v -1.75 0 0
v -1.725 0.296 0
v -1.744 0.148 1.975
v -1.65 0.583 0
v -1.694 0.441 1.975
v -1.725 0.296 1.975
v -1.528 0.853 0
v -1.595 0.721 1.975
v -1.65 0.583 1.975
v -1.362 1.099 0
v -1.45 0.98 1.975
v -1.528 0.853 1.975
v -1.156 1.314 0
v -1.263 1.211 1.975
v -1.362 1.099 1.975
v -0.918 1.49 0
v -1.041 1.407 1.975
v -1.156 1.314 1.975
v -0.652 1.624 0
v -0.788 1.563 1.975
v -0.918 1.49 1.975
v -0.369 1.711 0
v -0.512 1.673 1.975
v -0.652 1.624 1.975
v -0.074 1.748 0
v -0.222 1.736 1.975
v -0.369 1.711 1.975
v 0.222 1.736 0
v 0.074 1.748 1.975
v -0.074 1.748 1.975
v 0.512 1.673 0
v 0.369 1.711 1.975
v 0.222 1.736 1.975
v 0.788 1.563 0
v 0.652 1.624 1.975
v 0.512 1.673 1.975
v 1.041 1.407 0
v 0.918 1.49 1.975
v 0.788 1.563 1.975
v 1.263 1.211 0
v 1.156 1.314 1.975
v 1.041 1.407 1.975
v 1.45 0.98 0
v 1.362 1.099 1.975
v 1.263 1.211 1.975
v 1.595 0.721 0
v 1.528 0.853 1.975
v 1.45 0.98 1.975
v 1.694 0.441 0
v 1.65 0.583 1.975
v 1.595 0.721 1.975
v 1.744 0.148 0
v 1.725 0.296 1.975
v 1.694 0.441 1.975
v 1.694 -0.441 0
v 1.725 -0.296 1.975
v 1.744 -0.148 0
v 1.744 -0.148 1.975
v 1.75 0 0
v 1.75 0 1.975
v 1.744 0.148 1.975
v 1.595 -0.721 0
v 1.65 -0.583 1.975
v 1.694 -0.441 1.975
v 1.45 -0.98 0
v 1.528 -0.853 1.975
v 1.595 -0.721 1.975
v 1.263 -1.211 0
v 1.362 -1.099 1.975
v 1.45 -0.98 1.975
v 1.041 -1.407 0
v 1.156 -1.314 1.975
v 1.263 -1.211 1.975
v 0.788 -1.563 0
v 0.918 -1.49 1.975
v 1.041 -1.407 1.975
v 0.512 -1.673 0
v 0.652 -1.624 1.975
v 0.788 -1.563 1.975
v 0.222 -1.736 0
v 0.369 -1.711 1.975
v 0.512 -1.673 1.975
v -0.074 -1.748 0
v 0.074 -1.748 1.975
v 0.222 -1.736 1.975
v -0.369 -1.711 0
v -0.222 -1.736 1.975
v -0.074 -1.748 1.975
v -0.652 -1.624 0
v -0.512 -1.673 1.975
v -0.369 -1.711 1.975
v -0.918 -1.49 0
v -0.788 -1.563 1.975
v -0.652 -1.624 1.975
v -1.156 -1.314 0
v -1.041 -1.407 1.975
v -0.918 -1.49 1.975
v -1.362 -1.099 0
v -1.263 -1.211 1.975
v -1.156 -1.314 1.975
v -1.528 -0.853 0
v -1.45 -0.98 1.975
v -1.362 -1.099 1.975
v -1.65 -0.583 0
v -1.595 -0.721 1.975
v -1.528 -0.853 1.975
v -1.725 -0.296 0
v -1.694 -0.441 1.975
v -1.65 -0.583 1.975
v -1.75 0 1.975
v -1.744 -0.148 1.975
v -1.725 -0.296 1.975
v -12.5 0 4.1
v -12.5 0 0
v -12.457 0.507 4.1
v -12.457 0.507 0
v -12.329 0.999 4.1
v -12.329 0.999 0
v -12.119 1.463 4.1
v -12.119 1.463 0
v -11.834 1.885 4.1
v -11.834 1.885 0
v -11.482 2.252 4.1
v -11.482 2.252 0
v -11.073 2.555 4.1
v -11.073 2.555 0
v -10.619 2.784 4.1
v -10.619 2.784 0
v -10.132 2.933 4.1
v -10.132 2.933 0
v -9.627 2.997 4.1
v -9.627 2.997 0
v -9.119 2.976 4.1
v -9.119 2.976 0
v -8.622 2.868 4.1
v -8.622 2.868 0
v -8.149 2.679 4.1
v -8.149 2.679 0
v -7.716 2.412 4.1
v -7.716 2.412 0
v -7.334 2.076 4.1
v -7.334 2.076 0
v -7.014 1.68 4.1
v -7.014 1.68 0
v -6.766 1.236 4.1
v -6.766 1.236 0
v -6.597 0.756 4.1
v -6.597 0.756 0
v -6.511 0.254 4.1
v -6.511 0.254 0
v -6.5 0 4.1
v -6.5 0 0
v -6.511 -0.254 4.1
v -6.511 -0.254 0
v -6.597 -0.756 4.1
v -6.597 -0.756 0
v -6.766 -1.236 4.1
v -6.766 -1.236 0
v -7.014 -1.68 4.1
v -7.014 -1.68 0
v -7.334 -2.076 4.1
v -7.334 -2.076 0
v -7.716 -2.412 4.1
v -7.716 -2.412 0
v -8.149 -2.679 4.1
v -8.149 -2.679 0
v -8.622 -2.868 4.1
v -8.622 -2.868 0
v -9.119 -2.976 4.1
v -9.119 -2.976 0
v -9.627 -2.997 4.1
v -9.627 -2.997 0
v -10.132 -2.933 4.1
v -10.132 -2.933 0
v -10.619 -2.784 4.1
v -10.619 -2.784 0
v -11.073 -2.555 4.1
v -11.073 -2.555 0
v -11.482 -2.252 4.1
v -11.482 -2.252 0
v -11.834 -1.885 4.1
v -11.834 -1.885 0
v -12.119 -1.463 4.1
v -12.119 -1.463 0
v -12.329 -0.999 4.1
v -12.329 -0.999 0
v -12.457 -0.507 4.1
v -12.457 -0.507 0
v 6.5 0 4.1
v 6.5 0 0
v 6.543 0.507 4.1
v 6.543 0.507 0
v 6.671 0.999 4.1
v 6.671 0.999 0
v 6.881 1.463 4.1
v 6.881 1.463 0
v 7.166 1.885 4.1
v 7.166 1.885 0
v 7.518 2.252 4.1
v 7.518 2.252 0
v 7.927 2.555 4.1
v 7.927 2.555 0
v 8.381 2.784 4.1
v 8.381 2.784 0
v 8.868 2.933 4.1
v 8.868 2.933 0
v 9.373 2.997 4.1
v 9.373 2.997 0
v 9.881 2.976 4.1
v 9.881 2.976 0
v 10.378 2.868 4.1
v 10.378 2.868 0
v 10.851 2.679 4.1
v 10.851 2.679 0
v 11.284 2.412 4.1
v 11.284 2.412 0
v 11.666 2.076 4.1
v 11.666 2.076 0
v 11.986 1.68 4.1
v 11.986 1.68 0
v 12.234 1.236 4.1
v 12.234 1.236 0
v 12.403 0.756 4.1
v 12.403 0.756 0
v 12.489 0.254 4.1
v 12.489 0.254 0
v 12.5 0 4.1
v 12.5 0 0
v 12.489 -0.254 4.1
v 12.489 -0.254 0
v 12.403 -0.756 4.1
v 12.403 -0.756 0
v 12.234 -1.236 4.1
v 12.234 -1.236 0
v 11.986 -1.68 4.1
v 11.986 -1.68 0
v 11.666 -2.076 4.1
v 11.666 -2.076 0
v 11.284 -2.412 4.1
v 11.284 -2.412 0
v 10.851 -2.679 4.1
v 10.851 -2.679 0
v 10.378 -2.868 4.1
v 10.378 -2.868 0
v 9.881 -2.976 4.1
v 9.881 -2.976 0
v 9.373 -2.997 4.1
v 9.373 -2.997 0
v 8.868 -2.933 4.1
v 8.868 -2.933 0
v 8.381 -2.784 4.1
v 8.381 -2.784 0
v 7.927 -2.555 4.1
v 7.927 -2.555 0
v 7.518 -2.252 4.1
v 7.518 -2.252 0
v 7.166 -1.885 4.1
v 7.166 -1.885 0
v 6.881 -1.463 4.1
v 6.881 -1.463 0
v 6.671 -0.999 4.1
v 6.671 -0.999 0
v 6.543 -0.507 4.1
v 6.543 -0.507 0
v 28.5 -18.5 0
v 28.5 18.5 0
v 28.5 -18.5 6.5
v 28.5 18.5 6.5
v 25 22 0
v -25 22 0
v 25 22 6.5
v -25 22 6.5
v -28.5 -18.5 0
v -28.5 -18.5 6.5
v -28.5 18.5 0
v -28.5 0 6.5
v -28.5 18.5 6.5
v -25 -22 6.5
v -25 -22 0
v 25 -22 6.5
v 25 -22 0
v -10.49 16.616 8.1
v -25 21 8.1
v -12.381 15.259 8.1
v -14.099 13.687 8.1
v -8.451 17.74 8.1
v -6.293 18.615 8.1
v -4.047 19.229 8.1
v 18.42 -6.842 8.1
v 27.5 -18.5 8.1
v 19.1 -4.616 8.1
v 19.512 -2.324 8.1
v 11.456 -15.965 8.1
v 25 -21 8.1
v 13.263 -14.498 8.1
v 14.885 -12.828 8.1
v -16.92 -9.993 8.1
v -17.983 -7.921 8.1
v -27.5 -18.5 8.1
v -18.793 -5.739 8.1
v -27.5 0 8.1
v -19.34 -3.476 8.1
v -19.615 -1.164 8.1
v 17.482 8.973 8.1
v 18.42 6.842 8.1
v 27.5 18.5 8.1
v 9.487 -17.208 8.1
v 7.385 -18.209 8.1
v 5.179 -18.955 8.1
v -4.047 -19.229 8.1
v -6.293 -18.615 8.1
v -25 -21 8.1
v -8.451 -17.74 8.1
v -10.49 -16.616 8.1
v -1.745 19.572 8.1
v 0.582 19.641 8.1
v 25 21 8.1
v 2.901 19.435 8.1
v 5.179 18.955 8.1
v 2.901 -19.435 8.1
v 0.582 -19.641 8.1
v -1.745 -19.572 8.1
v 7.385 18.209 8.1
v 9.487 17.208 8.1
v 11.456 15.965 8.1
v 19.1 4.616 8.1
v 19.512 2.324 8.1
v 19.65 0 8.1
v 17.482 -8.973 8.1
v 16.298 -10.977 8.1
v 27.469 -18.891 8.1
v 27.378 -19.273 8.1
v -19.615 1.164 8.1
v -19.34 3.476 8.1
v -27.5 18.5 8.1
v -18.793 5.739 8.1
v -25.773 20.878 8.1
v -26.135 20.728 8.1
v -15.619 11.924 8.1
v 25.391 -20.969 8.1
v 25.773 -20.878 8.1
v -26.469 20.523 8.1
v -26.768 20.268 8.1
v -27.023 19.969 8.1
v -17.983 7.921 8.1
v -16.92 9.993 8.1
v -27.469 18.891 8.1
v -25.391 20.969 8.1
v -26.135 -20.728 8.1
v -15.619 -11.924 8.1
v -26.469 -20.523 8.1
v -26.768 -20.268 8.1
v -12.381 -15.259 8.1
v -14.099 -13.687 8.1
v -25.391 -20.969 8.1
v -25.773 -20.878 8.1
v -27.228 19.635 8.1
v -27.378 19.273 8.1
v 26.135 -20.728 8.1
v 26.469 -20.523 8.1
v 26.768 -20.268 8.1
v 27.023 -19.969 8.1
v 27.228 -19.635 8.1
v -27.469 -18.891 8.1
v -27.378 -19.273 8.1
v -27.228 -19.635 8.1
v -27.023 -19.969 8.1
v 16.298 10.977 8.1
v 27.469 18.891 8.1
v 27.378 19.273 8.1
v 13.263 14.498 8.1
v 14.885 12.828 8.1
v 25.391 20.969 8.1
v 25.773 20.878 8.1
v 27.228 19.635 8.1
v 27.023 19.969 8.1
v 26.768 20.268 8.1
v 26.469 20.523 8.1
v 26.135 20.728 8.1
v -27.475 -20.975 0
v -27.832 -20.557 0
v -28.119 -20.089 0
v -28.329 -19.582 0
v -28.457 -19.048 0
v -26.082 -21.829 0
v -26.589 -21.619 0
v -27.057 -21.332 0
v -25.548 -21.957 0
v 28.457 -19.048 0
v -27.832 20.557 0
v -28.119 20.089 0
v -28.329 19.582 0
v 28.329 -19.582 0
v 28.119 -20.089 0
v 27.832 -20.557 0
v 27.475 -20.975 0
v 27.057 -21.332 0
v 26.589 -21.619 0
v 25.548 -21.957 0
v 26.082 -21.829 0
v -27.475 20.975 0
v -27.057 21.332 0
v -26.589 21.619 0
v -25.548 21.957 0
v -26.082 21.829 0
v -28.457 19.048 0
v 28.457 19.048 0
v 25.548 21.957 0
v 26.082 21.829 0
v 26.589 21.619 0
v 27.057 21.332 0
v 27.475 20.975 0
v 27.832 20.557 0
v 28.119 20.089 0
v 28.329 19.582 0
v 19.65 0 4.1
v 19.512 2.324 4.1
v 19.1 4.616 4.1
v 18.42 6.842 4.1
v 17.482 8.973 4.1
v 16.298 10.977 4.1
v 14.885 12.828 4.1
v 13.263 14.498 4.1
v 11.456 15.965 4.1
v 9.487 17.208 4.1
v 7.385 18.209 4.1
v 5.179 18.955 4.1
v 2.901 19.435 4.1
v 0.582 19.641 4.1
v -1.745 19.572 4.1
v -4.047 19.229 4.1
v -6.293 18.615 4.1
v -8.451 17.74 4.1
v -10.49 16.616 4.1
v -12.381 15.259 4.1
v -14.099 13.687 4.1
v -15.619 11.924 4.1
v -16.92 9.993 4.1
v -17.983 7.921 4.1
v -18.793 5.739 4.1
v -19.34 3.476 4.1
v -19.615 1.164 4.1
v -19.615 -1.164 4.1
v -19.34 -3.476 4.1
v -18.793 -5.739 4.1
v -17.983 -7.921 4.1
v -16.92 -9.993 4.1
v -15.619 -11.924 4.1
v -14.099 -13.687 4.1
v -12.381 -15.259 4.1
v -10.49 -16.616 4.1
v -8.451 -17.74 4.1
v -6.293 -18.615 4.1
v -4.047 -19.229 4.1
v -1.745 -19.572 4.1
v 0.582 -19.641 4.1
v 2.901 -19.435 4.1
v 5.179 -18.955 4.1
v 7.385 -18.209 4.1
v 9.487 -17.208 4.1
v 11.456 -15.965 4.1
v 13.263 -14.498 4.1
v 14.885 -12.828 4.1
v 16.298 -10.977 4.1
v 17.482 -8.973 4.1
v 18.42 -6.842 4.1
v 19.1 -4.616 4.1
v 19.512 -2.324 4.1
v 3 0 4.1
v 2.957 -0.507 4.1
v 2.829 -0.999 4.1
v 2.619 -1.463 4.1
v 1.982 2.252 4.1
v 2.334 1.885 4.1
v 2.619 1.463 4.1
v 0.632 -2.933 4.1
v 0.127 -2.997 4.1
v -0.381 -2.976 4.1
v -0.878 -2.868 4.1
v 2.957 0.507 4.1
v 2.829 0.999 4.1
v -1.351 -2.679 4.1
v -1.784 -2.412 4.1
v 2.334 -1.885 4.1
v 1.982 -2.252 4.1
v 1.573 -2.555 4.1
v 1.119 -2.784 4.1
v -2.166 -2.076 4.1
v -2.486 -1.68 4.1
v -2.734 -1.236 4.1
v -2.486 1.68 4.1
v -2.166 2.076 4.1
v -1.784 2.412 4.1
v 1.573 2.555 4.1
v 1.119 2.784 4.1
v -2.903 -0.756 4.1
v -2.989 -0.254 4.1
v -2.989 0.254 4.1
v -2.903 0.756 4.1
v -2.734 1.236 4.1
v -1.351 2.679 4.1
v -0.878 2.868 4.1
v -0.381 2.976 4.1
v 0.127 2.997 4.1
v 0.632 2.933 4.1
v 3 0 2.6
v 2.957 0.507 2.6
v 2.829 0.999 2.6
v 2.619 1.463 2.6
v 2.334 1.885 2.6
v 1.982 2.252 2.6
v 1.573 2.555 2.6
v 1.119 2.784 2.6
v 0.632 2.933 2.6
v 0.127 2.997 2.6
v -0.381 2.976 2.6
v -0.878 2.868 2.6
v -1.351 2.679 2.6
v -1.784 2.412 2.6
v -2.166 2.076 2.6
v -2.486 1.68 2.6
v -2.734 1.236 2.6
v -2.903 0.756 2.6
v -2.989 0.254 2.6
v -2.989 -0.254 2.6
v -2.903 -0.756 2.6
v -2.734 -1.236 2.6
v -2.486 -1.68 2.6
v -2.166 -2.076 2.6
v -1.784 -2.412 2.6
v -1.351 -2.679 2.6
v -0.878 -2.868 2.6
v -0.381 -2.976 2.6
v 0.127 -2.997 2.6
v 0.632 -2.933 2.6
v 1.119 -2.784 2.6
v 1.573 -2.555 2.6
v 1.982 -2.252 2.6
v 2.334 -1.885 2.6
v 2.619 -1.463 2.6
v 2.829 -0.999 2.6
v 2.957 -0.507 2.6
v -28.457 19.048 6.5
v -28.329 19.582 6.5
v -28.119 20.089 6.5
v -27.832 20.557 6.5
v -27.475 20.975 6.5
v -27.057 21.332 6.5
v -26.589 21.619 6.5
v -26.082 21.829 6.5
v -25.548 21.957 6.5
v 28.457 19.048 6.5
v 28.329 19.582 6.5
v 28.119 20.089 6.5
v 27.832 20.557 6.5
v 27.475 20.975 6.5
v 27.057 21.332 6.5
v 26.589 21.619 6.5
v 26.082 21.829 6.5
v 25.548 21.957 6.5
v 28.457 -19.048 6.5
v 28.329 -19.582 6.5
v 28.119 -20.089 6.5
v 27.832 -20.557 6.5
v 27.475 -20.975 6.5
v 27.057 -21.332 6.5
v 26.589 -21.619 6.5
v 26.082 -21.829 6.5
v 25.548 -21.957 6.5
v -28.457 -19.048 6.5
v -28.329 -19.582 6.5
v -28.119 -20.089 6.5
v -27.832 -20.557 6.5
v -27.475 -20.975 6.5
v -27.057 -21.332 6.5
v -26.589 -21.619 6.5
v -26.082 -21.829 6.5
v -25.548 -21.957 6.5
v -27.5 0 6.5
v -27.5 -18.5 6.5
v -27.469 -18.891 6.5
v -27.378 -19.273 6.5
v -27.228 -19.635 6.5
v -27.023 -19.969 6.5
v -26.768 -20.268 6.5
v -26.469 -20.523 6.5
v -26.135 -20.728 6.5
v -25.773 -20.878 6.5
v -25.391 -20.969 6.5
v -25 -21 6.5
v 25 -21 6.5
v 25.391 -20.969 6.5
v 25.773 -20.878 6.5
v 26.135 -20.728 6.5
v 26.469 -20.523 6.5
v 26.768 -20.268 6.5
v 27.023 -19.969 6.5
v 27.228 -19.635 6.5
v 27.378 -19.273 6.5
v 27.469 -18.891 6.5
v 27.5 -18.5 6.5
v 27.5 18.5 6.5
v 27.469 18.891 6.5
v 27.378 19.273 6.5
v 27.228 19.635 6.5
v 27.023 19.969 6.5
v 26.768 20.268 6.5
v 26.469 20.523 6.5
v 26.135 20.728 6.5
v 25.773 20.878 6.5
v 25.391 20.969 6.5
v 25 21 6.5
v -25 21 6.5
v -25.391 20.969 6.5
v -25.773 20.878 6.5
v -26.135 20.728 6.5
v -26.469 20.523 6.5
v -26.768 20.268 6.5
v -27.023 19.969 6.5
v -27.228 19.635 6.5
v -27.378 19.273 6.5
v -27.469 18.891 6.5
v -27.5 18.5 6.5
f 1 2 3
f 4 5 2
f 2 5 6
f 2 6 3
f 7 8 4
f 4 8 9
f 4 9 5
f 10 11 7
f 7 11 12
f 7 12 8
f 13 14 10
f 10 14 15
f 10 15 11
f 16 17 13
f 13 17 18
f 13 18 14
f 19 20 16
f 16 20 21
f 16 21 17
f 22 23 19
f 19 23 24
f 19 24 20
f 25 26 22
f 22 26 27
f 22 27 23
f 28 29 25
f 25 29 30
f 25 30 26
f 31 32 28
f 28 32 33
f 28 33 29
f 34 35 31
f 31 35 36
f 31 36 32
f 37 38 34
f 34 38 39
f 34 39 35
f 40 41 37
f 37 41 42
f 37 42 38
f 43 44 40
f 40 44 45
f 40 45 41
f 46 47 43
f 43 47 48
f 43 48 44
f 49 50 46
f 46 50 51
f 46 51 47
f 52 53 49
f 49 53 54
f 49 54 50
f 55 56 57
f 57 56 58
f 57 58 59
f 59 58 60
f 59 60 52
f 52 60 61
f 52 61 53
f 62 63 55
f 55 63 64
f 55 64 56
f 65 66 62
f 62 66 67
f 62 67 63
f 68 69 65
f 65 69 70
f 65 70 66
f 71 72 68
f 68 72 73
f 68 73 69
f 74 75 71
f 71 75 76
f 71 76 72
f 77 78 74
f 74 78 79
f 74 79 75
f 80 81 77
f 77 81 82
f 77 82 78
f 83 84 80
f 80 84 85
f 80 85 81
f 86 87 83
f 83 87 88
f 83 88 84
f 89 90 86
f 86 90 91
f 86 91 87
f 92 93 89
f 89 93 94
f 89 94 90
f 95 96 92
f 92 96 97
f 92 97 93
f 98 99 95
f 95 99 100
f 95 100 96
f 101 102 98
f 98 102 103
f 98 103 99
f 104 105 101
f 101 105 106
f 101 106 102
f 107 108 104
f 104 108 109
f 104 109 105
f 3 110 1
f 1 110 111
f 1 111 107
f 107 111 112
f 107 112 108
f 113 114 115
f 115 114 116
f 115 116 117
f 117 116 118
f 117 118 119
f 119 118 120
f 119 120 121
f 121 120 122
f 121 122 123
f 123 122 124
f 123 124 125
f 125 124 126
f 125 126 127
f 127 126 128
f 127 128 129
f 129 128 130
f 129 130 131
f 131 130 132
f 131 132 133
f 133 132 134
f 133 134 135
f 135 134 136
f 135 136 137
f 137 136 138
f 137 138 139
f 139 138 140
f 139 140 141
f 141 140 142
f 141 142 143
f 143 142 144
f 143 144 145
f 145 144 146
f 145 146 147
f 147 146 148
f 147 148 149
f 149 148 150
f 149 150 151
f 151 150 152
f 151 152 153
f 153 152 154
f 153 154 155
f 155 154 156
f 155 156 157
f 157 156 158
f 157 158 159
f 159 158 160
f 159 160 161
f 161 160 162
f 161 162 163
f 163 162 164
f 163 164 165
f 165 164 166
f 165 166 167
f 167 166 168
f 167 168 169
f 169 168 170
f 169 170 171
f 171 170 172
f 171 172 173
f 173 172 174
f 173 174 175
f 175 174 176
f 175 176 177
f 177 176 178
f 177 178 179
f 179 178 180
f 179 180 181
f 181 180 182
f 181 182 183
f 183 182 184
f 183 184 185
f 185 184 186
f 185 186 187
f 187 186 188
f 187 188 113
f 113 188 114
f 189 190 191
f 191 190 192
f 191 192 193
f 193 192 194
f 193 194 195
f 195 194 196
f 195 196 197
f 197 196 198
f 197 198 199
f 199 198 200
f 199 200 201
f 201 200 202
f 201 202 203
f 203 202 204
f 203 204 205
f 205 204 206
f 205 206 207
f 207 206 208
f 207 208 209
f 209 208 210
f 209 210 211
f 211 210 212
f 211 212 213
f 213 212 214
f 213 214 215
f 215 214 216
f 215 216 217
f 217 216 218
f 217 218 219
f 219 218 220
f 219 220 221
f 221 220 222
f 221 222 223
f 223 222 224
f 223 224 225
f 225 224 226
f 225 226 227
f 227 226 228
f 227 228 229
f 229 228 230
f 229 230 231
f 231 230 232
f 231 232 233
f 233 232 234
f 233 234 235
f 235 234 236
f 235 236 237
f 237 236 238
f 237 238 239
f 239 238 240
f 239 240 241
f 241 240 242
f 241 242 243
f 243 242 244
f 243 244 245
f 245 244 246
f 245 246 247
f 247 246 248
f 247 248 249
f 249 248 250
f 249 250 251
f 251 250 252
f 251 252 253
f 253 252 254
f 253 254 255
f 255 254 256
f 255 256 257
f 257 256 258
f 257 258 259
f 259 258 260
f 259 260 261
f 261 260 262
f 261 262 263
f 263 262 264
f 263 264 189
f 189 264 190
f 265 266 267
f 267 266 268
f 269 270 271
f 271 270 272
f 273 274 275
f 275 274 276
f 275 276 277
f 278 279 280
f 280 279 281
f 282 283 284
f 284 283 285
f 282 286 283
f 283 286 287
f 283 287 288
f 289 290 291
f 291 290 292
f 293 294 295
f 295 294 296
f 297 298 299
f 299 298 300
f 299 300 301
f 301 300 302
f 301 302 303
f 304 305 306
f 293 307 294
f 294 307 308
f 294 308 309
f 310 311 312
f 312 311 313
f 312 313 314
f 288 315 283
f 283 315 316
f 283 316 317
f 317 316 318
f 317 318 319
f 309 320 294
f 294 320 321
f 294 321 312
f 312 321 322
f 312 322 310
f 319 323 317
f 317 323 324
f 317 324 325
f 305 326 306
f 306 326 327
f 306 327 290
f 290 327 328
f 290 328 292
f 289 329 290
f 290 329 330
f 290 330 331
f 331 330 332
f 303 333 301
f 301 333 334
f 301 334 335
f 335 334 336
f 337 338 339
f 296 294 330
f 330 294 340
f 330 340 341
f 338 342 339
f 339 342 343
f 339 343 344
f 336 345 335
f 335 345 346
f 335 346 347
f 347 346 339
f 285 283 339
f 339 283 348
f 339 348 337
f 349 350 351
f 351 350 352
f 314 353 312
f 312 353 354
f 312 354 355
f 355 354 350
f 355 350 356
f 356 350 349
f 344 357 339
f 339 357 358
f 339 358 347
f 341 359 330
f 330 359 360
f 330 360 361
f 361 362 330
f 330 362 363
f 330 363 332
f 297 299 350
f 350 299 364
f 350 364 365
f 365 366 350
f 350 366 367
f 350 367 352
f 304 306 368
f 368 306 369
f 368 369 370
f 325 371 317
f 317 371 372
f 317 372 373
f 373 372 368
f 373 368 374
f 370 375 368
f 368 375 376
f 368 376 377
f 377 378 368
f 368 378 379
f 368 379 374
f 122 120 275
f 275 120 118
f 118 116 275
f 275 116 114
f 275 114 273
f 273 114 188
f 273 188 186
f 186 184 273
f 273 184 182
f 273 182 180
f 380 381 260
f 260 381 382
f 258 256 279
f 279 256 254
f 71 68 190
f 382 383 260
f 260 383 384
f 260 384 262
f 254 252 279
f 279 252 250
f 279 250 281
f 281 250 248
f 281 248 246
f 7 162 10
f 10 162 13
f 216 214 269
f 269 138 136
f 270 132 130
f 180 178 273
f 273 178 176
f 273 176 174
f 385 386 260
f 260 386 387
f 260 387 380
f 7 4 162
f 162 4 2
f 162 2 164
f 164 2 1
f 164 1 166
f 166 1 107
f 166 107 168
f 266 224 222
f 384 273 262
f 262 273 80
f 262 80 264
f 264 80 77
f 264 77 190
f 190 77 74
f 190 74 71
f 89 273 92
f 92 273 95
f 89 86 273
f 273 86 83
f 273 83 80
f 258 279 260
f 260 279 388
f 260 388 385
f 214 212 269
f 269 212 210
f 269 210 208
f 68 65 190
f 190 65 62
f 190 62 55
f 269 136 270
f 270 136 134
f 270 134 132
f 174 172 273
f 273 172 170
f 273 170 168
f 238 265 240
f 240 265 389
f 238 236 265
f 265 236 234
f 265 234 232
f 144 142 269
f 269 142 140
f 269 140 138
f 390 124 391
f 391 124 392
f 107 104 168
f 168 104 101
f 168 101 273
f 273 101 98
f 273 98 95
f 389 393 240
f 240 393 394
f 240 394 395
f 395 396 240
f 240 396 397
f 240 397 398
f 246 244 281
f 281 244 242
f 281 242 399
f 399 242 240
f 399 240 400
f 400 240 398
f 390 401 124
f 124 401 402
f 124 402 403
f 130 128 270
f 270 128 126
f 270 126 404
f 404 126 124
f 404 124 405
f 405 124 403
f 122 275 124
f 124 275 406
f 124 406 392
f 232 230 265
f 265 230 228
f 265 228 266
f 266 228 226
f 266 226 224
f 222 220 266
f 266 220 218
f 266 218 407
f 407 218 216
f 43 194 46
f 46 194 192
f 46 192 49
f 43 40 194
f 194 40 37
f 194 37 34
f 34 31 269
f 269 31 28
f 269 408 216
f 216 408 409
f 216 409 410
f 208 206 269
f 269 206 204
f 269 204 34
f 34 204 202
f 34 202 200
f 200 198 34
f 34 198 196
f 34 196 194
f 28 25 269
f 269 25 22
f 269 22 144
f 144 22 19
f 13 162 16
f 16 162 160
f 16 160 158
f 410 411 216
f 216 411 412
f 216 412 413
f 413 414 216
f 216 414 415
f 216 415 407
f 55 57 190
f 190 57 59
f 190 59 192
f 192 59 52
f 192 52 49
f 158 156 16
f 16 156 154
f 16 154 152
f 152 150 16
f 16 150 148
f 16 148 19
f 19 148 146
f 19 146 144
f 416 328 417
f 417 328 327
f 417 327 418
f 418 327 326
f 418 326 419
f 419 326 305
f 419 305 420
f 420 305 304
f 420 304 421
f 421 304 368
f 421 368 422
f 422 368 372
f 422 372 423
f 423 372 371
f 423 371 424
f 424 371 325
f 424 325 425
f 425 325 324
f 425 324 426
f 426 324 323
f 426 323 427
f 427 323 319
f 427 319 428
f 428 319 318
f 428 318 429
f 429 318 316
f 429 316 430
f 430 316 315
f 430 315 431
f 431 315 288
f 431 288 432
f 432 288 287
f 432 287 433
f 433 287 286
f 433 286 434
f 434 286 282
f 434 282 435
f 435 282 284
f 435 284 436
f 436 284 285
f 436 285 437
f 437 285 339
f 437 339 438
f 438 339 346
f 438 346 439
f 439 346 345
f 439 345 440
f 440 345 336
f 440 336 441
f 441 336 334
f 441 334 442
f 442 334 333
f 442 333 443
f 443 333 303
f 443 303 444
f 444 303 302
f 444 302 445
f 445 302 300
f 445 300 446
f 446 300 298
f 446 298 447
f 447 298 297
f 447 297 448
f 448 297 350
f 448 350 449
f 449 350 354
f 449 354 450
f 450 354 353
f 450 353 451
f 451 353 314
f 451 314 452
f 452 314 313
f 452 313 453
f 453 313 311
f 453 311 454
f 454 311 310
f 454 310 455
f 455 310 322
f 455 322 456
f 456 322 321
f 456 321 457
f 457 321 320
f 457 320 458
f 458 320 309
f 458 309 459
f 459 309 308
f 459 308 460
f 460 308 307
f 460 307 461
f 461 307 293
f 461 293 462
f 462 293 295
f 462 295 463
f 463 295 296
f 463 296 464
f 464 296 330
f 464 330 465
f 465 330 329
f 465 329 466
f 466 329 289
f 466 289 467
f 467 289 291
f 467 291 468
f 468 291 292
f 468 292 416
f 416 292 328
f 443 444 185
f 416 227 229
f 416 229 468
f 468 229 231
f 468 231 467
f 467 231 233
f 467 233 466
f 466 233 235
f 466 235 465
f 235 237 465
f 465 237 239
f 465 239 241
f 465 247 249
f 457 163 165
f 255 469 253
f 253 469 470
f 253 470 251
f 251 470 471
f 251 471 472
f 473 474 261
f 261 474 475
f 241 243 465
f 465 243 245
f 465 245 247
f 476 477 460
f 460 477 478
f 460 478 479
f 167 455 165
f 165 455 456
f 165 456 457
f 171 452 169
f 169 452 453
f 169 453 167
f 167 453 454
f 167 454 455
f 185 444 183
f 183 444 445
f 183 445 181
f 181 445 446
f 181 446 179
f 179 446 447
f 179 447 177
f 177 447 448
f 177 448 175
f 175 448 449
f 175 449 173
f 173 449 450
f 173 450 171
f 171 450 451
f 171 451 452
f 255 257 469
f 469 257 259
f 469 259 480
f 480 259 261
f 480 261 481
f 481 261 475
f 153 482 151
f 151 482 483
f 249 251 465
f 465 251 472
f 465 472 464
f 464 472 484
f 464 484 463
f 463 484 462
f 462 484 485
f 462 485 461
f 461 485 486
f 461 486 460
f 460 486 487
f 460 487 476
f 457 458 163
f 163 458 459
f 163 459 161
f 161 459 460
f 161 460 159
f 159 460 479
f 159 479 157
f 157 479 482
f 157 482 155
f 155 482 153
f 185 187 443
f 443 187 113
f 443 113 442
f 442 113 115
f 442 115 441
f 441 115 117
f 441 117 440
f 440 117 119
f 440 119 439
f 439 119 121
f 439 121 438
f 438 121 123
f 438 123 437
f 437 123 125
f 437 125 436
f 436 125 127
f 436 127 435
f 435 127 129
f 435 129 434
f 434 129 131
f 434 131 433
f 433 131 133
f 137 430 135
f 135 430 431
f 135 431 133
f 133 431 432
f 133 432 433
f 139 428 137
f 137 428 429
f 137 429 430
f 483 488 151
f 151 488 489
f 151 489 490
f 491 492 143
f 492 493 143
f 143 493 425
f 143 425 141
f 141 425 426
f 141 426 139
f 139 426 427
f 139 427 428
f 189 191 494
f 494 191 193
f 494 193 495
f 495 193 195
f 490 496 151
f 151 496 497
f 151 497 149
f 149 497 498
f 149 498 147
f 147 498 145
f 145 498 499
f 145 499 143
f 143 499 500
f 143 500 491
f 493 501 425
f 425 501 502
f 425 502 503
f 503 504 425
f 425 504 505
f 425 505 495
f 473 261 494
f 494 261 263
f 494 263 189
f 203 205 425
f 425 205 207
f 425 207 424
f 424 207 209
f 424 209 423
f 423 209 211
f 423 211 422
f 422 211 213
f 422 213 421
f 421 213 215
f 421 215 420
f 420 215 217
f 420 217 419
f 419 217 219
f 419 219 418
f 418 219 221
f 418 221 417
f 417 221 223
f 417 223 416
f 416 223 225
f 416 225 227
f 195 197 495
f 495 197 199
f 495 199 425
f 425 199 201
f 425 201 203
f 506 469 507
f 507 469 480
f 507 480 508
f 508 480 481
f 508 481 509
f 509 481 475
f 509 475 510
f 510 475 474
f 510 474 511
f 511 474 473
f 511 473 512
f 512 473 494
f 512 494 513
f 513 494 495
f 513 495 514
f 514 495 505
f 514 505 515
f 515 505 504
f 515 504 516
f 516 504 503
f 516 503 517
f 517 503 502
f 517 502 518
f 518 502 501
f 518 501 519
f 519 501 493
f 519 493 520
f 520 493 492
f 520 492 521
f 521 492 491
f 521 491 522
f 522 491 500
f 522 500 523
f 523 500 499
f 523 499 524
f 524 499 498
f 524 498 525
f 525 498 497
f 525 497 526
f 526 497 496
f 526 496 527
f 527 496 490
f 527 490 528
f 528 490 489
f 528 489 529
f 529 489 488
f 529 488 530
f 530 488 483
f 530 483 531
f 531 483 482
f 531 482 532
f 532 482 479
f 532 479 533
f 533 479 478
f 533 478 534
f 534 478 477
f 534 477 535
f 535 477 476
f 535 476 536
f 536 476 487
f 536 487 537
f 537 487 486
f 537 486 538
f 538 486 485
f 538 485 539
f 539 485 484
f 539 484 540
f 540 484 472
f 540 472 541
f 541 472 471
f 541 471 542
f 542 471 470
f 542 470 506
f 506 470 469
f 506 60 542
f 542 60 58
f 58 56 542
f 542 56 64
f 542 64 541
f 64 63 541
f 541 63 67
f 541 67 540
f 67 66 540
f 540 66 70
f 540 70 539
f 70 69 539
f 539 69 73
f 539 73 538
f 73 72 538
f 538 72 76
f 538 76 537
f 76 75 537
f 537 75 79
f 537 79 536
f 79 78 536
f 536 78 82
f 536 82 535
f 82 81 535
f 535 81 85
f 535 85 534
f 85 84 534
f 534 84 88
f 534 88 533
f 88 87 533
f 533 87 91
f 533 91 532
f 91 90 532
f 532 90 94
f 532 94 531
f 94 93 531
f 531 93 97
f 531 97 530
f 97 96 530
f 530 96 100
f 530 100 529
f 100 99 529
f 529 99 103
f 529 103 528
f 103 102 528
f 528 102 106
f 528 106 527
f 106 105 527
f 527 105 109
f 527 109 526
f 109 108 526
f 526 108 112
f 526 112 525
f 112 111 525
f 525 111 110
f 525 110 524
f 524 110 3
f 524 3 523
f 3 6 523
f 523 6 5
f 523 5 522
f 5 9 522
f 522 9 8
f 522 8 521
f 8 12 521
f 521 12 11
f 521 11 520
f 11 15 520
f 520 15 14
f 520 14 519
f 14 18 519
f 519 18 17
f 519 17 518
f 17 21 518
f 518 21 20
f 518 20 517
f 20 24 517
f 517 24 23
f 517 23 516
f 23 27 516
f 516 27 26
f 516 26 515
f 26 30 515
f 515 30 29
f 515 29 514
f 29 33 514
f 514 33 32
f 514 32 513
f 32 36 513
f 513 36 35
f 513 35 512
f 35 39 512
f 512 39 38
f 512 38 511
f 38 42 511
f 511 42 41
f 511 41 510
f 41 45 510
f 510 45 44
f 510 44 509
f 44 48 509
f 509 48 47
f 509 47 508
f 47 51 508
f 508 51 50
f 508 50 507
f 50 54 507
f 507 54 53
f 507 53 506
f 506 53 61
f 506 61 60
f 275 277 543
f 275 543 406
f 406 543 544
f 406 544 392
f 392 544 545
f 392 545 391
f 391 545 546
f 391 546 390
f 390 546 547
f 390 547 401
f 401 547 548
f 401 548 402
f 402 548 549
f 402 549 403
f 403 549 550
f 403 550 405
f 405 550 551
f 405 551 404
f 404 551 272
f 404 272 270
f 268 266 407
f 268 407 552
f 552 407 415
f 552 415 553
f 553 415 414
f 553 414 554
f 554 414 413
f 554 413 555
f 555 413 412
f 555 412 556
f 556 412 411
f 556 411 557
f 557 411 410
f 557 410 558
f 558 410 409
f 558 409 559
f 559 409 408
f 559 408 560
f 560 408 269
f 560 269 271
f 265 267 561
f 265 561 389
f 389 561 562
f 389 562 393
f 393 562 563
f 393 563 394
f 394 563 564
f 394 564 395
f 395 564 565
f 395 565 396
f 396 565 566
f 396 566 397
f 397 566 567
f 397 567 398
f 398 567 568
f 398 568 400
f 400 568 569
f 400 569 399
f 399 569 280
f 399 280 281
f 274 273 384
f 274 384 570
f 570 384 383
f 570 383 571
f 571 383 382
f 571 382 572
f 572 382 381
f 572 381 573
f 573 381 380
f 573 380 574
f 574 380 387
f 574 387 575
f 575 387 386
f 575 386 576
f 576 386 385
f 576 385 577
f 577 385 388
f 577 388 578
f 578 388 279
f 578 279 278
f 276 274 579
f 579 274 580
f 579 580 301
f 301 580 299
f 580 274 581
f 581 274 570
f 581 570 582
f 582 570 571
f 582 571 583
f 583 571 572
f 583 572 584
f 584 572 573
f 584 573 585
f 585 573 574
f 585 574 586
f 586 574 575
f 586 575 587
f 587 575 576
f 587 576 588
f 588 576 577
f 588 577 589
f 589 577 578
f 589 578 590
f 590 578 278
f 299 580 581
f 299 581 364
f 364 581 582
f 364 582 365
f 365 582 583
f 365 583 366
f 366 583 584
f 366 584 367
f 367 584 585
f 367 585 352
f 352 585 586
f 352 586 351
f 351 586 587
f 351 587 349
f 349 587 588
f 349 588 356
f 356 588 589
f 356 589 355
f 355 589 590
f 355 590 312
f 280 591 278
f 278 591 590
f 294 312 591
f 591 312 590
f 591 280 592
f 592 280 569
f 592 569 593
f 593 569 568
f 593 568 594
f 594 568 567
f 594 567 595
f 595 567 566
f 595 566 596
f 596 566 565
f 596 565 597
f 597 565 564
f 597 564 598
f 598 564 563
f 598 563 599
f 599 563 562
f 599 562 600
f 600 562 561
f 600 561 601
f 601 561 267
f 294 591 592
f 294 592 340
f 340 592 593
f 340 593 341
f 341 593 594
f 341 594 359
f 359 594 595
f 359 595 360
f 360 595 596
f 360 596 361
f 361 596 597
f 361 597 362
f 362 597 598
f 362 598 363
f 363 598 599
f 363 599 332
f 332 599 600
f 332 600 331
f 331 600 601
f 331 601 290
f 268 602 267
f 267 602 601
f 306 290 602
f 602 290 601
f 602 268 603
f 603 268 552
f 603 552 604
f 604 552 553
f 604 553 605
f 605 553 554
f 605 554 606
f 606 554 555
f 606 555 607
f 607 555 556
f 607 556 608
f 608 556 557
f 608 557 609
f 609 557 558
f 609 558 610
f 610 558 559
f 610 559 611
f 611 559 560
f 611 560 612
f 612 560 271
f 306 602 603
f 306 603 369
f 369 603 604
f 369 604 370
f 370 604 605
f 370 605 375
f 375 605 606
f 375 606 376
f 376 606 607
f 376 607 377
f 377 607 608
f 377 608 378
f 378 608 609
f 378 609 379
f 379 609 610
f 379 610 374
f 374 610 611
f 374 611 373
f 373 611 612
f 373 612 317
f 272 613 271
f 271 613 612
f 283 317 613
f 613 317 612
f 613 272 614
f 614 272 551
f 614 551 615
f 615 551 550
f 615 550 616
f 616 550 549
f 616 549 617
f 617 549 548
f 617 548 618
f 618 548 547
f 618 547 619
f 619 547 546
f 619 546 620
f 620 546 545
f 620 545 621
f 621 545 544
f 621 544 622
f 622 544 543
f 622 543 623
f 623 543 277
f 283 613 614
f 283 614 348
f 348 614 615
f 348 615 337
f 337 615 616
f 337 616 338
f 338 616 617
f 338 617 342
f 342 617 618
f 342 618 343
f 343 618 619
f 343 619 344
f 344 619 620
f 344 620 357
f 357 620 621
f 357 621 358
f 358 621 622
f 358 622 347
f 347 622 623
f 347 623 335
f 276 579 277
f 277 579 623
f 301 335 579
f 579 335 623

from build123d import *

# Parameters (mm, degrees)
SKETCH1_W           = 57
SKETCH1_H           = 44
SKETCH1_R           = 1.75
SKETCH1_R_2         = 3
BOSS_EXTRUDE1_DEPTH = 8.1
SKETCH2_R           = 19.65
CUT_EXTRUDE1_DEPTH  = 4
SKETCH3_R           = 3
CUT_EXTRUDE2_DEPTH  = 1.5
FILLET2_R           = 3.5
SKETCH10_W          = 1
SKETCH10_H          = 1.6


with BuildPart() as part:
    # Sketch1 → Boss-Extrude1 (new body)
    with BuildSketch(Plane.XY):
        Rectangle(SKETCH1_W, SKETCH1_H)
        Circle(SKETCH1_R, mode=Mode.SUBTRACT)
        with Locations((-9.5, 0)):
            Circle(SKETCH1_R_2, mode=Mode.SUBTRACT)
        with Locations((9.5, 0)):
            Circle(SKETCH1_R_2, mode=Mode.SUBTRACT)
    extrude(amount=BOSS_EXTRUDE1_DEPTH)

    # Sketch2 → Cut-Extrude1 (cut)
    with BuildSketch(Plane.XY.offset(8.1)):
        Circle(SKETCH2_R)
    extrude(amount=-CUT_EXTRUDE1_DEPTH, mode=Mode.SUBTRACT)

    # Sketch3 → Cut-Extrude2 (cut)
    with BuildSketch(Plane.XY.offset(4.1)):
        Circle(SKETCH3_R)
    extrude(amount=-CUT_EXTRUDE2_DEPTH, mode=Mode.SUBTRACT)

    # Sketch4 → Cut-Revolve1 (revolve, cut)
    with BuildSketch(Plane(origin=(0, 0, 0), x_dir=(1, 0, 0), z_dir=(0, 1, 0))):
        Polygon((0, -2.6), (0, -1.1), (3, -2.6), align=None)
    revolve(axis=Axis((0, 0, 2.6), (0, 0, -1)), mode=Mode.SUBTRACT)

    # Fillet2
    fillet2_edges = [part.edges().sort_by_distance(p)[0] for p in [
        (28.5, -22, 4.05),
        (-28.5, -22, 4.05),
        (-28.5, 22, 4.05),
        (28.5, 22, 4.05),
    ]]
    fillet(fillet2_edges, radius=FILLET2_R)

    # Cut-Sweep1: sweep along a path in Sketch8
    with BuildLine(Plane.XY.offset(8.1)) as cut_sweep1_path:
        Line((25, 22), (-25, 22))
        ThreePointArc((-25, 22), (-27.474873734, 20.974873734), (-28.5, 18.5))
        Line((-28.5, 18.5), (-28.5, -18.5))
        ThreePointArc((-28.5, -18.5), (-27.474873734, -20.974873734), (-25, -22))
        Line((-25, -22), (25, -22))
        ThreePointArc((25, -22), (27.474873734, -20.974873734), (28.5, -18.5))
        Line((28.5, -18.5), (28.5, 18.5))
        ThreePointArc((28.5, 18.5), (27.474873734, 20.974873734), (25, 22))
    # Sketch10 → Cut-Sweep1 (sweep, cut)
    with BuildSketch(Plane(origin=(0, 0, 0), x_dir=(1, 0, 0), z_dir=(0, 1, 0))):
        with Locations((-28, -7.3)):
            Rectangle(SKETCH10_W, SKETCH10_H)
    sweep(path=cut_sweep1_path.line, mode=Mode.SUBTRACT)


solid = part.part
